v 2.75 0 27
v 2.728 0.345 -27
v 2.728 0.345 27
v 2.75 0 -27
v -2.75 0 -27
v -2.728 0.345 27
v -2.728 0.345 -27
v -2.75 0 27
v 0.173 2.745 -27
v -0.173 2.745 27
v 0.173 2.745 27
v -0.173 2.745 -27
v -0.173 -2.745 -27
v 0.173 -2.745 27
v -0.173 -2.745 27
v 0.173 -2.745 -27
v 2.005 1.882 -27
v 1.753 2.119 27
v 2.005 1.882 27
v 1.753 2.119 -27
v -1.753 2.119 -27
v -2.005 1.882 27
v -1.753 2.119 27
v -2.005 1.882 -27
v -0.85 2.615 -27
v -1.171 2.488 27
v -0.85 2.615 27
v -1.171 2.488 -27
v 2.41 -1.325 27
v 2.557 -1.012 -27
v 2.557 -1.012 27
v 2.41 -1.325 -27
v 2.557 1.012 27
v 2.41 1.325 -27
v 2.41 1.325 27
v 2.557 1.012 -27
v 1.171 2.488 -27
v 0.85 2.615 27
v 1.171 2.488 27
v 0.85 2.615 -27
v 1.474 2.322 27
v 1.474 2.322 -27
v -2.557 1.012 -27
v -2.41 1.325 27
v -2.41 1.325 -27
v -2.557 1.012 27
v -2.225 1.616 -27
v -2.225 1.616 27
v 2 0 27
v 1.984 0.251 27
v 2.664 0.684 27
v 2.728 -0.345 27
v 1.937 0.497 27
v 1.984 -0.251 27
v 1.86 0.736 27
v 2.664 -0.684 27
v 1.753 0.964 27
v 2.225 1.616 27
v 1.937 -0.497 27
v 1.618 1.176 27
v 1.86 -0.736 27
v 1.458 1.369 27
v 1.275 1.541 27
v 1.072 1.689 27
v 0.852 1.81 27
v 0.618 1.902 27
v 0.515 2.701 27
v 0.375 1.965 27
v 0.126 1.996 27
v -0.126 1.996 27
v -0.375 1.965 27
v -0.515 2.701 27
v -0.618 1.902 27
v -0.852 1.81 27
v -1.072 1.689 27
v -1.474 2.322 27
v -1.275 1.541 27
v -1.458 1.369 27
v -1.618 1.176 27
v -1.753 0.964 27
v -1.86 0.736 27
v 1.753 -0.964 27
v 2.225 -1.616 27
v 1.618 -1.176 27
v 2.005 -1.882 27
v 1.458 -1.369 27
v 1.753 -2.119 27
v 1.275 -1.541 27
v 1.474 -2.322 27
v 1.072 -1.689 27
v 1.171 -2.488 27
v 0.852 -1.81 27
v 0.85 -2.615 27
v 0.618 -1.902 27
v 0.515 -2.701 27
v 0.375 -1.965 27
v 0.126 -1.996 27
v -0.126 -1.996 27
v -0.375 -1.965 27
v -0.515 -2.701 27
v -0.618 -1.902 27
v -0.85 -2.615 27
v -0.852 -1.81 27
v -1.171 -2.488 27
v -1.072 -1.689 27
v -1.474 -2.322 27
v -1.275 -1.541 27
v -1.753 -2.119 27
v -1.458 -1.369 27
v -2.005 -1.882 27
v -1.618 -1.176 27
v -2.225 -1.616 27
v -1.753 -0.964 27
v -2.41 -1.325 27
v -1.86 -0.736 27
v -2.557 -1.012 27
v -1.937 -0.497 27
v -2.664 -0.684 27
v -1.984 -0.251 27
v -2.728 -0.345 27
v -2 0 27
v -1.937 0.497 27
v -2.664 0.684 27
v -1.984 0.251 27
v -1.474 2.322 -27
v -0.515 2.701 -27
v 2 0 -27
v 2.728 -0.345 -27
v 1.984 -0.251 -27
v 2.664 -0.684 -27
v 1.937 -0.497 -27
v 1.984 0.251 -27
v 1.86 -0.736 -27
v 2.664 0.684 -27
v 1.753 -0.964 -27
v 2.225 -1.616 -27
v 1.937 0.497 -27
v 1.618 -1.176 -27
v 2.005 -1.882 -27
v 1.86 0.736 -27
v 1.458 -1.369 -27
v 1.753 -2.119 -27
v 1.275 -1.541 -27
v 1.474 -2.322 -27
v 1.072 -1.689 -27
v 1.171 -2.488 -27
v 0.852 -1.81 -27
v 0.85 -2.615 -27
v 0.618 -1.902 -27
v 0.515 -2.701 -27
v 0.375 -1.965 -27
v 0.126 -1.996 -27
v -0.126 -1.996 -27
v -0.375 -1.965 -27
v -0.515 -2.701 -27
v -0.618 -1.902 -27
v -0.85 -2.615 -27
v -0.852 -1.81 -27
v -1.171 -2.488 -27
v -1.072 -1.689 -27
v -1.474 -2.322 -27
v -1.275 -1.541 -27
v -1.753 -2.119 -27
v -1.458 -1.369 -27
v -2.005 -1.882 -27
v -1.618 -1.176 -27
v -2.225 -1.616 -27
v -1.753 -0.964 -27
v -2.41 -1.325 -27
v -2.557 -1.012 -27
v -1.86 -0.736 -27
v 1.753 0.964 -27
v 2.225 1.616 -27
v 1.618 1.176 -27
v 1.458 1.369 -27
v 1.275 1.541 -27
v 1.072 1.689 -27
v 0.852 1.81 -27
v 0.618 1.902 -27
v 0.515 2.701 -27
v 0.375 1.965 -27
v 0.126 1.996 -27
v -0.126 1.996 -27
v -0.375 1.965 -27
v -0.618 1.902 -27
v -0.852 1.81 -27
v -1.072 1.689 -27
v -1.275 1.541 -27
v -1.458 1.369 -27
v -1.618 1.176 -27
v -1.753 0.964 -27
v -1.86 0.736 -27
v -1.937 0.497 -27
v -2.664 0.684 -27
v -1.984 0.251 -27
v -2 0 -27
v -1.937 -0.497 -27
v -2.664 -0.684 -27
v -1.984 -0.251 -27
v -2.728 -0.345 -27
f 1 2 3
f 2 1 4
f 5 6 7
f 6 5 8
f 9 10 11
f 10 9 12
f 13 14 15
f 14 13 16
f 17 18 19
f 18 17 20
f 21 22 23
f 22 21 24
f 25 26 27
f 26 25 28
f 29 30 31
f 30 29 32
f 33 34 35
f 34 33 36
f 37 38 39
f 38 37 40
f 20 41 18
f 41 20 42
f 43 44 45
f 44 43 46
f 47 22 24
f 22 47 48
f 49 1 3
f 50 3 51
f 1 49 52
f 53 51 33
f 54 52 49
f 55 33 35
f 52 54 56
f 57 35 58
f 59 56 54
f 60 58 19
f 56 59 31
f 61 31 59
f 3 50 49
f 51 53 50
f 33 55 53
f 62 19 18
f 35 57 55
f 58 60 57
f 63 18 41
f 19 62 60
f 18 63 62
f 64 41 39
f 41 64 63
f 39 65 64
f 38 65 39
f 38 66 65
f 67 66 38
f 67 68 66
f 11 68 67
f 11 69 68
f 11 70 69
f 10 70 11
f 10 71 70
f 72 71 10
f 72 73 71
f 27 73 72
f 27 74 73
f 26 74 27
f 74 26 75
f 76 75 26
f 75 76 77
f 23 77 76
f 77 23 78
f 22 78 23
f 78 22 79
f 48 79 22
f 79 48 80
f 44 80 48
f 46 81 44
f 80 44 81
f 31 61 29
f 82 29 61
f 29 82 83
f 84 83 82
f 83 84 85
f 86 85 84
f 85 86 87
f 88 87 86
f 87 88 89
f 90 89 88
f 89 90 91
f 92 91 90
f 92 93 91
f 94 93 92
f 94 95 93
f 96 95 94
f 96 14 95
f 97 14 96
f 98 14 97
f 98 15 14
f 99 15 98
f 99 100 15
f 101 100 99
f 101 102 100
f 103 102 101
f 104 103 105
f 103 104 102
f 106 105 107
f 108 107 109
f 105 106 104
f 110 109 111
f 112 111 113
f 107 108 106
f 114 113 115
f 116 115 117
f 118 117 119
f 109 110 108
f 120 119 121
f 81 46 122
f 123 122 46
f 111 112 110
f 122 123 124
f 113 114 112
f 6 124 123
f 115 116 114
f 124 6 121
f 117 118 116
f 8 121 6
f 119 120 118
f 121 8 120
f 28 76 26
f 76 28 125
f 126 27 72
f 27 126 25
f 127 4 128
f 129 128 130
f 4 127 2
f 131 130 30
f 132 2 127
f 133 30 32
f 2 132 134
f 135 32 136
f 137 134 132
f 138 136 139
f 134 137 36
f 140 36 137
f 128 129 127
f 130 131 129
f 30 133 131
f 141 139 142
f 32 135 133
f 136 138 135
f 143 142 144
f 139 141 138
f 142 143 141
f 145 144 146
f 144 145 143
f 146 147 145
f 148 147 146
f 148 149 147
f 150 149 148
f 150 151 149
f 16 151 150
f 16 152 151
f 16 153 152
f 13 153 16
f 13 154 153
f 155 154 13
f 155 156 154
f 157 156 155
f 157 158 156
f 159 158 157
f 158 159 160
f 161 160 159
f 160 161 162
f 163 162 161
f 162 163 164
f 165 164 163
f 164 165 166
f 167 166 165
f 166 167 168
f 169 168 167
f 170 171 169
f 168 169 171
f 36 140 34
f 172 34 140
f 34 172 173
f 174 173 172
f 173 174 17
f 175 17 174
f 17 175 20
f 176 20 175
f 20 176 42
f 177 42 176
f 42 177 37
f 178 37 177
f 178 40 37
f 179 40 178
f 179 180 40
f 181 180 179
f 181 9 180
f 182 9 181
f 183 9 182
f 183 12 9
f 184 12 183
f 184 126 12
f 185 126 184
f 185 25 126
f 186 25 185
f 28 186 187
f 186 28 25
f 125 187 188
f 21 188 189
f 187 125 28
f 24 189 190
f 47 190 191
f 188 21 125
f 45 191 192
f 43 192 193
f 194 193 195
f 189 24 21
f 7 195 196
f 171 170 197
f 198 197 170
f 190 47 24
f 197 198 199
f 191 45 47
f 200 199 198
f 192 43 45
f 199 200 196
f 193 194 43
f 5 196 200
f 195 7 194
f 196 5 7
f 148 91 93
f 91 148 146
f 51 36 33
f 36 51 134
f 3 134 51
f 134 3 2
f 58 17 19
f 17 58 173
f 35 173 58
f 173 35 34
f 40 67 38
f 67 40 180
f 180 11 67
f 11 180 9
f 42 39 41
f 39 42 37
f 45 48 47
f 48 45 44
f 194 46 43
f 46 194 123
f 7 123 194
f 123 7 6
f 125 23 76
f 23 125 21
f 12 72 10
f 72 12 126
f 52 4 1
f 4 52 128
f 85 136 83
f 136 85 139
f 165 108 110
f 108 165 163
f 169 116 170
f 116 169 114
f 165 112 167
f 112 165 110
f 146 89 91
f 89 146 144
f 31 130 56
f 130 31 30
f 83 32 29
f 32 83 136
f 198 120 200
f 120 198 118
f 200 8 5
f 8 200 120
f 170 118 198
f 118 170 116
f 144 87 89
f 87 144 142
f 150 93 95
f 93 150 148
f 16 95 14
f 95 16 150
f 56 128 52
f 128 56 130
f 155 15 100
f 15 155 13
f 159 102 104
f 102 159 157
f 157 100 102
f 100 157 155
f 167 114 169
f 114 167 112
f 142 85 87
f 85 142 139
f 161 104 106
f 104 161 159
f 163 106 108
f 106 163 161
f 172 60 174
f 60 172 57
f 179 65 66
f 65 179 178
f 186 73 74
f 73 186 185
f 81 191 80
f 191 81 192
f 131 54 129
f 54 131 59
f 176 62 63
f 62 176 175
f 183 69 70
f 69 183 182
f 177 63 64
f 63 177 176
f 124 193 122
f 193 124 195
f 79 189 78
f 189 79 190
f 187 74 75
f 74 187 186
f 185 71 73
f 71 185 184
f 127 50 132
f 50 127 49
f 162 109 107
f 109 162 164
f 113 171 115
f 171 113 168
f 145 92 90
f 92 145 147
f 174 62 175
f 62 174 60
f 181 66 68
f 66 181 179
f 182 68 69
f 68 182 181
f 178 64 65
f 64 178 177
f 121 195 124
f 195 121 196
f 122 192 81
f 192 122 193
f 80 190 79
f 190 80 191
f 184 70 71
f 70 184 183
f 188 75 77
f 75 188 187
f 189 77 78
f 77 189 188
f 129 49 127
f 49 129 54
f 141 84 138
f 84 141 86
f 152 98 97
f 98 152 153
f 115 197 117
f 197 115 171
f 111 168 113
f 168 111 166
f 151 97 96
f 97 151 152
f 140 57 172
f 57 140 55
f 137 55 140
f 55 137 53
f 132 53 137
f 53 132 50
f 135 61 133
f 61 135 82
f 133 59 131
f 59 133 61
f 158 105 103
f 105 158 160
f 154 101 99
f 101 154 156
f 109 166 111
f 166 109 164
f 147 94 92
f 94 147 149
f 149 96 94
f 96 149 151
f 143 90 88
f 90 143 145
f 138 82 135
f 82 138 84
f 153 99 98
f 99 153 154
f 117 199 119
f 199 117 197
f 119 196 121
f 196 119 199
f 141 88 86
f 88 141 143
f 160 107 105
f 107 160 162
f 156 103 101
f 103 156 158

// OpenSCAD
$fn = 50;


difference() {
	union() {
		translate(v = [0, 0, -27.0000000000]) {
			cylinder(h = 54, r = 2.7500000000);
		}
	}
	union() {
		translate(v = [0, 0, -100.0000000000]) {
			cylinder(h = 200, r = 2.0000000000);
		}
	}
}
